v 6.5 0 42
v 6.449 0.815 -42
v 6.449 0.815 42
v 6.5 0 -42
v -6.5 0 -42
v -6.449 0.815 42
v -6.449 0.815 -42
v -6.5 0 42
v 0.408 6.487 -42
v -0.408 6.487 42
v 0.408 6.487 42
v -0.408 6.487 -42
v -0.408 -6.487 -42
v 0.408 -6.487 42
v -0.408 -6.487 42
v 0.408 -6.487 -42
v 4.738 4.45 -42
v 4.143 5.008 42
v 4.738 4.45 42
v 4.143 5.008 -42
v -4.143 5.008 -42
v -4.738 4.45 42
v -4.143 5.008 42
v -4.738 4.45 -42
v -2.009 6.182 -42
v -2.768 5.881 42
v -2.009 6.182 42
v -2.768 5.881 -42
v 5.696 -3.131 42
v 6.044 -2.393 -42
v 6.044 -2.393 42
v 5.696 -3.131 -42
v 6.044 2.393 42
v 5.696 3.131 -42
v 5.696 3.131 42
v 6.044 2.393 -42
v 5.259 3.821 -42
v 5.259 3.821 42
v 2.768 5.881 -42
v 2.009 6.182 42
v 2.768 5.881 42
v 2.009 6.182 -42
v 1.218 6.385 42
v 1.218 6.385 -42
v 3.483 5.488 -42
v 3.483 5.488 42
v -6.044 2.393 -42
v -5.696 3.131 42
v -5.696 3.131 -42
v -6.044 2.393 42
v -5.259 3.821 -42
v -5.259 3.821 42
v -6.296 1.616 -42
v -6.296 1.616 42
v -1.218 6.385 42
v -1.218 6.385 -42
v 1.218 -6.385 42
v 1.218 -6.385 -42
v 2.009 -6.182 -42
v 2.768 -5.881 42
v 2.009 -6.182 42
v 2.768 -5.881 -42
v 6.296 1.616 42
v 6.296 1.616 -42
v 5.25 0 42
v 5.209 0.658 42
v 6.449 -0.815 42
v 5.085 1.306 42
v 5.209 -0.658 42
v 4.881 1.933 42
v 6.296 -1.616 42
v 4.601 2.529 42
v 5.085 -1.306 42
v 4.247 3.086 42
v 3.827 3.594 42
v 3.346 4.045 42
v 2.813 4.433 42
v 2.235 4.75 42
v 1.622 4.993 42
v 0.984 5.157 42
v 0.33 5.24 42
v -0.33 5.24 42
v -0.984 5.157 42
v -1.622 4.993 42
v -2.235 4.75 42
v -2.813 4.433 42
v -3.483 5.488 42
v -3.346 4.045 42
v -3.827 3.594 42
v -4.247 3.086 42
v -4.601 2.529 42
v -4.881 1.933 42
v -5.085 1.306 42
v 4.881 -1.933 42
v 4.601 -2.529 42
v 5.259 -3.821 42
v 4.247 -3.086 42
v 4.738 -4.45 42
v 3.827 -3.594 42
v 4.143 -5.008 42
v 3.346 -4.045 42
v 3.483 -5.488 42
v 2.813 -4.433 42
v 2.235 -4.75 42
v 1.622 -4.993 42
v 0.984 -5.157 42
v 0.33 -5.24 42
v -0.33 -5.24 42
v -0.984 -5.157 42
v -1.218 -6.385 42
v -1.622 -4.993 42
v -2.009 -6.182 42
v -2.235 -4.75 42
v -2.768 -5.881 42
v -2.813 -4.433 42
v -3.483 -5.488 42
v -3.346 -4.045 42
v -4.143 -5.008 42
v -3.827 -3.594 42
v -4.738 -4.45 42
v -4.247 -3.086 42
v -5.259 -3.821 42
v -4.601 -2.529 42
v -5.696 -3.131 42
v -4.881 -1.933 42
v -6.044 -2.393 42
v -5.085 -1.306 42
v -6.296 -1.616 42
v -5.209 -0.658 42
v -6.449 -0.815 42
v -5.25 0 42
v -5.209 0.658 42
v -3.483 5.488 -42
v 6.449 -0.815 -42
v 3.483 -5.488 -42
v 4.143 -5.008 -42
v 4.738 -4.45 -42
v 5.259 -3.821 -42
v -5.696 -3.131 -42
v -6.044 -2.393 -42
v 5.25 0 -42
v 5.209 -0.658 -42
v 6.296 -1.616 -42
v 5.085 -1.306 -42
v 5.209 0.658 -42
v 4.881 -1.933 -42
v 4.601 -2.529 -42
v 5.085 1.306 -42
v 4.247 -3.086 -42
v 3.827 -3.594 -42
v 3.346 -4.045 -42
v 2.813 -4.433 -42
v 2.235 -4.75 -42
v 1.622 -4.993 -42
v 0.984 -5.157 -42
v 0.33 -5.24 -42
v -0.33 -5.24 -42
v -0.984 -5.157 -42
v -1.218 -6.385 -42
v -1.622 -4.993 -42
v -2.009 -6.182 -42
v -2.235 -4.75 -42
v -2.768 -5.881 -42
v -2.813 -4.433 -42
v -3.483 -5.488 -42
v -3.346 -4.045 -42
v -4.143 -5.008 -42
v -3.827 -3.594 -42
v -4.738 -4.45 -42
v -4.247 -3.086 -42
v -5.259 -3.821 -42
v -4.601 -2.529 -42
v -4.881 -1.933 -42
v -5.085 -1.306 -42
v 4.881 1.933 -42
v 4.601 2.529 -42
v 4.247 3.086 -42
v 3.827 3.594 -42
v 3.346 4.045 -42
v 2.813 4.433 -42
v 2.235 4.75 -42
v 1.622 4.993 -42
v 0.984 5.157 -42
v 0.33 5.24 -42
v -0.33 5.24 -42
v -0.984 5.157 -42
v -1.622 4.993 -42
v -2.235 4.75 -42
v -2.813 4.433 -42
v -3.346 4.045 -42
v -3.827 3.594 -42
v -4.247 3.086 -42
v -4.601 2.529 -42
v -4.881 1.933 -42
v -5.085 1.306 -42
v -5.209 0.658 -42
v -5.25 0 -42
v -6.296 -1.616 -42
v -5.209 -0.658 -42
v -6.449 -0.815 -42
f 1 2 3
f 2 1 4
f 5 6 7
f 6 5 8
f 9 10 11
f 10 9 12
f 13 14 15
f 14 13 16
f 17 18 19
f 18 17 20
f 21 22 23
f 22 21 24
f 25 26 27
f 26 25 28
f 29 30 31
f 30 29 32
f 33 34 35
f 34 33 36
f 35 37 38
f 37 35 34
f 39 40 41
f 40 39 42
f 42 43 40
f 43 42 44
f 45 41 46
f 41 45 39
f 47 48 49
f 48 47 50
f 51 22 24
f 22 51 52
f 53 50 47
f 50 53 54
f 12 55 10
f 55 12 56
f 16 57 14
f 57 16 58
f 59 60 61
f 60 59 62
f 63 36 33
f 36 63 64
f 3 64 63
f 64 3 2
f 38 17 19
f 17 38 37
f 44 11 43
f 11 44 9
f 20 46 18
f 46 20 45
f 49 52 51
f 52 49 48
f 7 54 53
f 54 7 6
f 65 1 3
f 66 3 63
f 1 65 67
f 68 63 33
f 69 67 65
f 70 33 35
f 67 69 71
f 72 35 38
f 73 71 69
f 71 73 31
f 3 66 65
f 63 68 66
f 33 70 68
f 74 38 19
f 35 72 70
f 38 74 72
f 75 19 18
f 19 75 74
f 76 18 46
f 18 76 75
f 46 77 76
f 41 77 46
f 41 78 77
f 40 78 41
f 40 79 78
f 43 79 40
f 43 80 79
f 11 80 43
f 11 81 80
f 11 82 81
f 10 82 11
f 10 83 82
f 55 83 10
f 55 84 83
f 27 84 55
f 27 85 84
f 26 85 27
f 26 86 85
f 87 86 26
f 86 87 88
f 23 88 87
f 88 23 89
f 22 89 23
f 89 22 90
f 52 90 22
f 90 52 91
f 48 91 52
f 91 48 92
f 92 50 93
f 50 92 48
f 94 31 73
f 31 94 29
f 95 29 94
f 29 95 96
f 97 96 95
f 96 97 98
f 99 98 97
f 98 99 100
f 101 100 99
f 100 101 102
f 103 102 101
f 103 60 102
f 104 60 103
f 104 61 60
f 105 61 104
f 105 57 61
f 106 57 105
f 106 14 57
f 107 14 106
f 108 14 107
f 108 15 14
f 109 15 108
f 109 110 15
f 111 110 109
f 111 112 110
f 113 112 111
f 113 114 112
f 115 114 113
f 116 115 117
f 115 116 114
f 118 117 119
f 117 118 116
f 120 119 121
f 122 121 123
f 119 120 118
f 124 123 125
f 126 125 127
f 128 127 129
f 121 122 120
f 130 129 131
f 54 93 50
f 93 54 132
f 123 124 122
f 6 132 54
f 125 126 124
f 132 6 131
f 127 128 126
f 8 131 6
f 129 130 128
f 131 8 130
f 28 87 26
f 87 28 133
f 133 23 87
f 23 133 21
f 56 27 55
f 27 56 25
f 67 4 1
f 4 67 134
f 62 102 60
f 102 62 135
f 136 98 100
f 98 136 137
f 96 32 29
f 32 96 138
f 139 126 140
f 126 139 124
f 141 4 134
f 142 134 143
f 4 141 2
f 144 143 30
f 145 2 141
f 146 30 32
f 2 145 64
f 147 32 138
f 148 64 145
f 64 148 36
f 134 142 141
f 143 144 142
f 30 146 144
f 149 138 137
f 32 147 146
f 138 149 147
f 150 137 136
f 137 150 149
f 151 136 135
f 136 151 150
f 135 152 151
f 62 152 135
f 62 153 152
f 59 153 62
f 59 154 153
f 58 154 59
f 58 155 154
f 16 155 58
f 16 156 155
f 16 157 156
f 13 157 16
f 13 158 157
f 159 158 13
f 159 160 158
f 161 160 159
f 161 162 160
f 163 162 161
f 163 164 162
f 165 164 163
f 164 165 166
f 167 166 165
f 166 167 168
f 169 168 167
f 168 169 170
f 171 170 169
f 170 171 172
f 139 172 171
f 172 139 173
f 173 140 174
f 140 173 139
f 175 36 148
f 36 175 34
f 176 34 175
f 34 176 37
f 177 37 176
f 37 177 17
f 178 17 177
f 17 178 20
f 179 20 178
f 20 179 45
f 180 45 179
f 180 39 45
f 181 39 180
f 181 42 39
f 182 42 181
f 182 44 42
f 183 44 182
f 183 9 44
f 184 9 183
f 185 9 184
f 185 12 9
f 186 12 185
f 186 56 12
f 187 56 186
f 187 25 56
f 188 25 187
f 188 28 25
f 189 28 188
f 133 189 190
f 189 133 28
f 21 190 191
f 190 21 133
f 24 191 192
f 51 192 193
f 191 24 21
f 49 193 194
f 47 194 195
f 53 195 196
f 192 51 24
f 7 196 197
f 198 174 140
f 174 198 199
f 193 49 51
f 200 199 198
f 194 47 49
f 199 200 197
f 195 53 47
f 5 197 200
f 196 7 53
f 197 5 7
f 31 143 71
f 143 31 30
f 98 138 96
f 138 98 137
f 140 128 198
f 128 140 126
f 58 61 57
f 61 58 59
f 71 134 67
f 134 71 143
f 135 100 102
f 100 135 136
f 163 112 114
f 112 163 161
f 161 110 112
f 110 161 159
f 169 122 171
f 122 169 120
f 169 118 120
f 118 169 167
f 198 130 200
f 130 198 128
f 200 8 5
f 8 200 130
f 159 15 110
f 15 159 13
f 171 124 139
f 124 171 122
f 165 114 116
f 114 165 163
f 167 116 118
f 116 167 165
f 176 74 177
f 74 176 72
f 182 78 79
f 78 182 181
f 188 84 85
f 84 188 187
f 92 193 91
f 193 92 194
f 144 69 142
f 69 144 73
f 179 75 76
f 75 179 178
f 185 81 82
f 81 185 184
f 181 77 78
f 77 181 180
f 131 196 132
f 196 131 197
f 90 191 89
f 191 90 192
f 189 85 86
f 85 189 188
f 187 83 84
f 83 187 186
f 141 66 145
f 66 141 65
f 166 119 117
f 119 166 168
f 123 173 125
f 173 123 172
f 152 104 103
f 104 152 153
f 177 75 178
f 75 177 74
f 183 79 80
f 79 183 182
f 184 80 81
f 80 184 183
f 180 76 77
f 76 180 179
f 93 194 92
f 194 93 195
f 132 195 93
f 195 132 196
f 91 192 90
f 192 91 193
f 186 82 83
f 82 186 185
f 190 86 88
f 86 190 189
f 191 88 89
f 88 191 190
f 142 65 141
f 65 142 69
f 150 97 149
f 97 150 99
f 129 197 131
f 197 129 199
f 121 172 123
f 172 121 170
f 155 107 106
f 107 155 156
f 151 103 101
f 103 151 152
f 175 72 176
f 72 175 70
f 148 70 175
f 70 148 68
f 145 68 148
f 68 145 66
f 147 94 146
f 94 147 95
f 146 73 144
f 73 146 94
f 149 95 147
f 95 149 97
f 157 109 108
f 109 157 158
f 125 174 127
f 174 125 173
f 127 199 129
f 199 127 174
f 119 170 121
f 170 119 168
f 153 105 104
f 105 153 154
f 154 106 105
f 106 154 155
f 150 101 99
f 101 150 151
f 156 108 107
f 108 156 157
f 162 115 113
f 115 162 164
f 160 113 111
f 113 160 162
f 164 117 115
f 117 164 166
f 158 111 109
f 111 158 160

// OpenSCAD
$fn = 50;


difference() {
	union() {
		translate(v = [0, 0, -42.0000000000]) {
			cylinder(h = 84, r = 6.5000000000);
		}
	}
	union() {
		translate(v = [0, 0, -100.0000000000]) {
			cylinder(h = 200, r = 5.2500000000);
		}
	}
}
